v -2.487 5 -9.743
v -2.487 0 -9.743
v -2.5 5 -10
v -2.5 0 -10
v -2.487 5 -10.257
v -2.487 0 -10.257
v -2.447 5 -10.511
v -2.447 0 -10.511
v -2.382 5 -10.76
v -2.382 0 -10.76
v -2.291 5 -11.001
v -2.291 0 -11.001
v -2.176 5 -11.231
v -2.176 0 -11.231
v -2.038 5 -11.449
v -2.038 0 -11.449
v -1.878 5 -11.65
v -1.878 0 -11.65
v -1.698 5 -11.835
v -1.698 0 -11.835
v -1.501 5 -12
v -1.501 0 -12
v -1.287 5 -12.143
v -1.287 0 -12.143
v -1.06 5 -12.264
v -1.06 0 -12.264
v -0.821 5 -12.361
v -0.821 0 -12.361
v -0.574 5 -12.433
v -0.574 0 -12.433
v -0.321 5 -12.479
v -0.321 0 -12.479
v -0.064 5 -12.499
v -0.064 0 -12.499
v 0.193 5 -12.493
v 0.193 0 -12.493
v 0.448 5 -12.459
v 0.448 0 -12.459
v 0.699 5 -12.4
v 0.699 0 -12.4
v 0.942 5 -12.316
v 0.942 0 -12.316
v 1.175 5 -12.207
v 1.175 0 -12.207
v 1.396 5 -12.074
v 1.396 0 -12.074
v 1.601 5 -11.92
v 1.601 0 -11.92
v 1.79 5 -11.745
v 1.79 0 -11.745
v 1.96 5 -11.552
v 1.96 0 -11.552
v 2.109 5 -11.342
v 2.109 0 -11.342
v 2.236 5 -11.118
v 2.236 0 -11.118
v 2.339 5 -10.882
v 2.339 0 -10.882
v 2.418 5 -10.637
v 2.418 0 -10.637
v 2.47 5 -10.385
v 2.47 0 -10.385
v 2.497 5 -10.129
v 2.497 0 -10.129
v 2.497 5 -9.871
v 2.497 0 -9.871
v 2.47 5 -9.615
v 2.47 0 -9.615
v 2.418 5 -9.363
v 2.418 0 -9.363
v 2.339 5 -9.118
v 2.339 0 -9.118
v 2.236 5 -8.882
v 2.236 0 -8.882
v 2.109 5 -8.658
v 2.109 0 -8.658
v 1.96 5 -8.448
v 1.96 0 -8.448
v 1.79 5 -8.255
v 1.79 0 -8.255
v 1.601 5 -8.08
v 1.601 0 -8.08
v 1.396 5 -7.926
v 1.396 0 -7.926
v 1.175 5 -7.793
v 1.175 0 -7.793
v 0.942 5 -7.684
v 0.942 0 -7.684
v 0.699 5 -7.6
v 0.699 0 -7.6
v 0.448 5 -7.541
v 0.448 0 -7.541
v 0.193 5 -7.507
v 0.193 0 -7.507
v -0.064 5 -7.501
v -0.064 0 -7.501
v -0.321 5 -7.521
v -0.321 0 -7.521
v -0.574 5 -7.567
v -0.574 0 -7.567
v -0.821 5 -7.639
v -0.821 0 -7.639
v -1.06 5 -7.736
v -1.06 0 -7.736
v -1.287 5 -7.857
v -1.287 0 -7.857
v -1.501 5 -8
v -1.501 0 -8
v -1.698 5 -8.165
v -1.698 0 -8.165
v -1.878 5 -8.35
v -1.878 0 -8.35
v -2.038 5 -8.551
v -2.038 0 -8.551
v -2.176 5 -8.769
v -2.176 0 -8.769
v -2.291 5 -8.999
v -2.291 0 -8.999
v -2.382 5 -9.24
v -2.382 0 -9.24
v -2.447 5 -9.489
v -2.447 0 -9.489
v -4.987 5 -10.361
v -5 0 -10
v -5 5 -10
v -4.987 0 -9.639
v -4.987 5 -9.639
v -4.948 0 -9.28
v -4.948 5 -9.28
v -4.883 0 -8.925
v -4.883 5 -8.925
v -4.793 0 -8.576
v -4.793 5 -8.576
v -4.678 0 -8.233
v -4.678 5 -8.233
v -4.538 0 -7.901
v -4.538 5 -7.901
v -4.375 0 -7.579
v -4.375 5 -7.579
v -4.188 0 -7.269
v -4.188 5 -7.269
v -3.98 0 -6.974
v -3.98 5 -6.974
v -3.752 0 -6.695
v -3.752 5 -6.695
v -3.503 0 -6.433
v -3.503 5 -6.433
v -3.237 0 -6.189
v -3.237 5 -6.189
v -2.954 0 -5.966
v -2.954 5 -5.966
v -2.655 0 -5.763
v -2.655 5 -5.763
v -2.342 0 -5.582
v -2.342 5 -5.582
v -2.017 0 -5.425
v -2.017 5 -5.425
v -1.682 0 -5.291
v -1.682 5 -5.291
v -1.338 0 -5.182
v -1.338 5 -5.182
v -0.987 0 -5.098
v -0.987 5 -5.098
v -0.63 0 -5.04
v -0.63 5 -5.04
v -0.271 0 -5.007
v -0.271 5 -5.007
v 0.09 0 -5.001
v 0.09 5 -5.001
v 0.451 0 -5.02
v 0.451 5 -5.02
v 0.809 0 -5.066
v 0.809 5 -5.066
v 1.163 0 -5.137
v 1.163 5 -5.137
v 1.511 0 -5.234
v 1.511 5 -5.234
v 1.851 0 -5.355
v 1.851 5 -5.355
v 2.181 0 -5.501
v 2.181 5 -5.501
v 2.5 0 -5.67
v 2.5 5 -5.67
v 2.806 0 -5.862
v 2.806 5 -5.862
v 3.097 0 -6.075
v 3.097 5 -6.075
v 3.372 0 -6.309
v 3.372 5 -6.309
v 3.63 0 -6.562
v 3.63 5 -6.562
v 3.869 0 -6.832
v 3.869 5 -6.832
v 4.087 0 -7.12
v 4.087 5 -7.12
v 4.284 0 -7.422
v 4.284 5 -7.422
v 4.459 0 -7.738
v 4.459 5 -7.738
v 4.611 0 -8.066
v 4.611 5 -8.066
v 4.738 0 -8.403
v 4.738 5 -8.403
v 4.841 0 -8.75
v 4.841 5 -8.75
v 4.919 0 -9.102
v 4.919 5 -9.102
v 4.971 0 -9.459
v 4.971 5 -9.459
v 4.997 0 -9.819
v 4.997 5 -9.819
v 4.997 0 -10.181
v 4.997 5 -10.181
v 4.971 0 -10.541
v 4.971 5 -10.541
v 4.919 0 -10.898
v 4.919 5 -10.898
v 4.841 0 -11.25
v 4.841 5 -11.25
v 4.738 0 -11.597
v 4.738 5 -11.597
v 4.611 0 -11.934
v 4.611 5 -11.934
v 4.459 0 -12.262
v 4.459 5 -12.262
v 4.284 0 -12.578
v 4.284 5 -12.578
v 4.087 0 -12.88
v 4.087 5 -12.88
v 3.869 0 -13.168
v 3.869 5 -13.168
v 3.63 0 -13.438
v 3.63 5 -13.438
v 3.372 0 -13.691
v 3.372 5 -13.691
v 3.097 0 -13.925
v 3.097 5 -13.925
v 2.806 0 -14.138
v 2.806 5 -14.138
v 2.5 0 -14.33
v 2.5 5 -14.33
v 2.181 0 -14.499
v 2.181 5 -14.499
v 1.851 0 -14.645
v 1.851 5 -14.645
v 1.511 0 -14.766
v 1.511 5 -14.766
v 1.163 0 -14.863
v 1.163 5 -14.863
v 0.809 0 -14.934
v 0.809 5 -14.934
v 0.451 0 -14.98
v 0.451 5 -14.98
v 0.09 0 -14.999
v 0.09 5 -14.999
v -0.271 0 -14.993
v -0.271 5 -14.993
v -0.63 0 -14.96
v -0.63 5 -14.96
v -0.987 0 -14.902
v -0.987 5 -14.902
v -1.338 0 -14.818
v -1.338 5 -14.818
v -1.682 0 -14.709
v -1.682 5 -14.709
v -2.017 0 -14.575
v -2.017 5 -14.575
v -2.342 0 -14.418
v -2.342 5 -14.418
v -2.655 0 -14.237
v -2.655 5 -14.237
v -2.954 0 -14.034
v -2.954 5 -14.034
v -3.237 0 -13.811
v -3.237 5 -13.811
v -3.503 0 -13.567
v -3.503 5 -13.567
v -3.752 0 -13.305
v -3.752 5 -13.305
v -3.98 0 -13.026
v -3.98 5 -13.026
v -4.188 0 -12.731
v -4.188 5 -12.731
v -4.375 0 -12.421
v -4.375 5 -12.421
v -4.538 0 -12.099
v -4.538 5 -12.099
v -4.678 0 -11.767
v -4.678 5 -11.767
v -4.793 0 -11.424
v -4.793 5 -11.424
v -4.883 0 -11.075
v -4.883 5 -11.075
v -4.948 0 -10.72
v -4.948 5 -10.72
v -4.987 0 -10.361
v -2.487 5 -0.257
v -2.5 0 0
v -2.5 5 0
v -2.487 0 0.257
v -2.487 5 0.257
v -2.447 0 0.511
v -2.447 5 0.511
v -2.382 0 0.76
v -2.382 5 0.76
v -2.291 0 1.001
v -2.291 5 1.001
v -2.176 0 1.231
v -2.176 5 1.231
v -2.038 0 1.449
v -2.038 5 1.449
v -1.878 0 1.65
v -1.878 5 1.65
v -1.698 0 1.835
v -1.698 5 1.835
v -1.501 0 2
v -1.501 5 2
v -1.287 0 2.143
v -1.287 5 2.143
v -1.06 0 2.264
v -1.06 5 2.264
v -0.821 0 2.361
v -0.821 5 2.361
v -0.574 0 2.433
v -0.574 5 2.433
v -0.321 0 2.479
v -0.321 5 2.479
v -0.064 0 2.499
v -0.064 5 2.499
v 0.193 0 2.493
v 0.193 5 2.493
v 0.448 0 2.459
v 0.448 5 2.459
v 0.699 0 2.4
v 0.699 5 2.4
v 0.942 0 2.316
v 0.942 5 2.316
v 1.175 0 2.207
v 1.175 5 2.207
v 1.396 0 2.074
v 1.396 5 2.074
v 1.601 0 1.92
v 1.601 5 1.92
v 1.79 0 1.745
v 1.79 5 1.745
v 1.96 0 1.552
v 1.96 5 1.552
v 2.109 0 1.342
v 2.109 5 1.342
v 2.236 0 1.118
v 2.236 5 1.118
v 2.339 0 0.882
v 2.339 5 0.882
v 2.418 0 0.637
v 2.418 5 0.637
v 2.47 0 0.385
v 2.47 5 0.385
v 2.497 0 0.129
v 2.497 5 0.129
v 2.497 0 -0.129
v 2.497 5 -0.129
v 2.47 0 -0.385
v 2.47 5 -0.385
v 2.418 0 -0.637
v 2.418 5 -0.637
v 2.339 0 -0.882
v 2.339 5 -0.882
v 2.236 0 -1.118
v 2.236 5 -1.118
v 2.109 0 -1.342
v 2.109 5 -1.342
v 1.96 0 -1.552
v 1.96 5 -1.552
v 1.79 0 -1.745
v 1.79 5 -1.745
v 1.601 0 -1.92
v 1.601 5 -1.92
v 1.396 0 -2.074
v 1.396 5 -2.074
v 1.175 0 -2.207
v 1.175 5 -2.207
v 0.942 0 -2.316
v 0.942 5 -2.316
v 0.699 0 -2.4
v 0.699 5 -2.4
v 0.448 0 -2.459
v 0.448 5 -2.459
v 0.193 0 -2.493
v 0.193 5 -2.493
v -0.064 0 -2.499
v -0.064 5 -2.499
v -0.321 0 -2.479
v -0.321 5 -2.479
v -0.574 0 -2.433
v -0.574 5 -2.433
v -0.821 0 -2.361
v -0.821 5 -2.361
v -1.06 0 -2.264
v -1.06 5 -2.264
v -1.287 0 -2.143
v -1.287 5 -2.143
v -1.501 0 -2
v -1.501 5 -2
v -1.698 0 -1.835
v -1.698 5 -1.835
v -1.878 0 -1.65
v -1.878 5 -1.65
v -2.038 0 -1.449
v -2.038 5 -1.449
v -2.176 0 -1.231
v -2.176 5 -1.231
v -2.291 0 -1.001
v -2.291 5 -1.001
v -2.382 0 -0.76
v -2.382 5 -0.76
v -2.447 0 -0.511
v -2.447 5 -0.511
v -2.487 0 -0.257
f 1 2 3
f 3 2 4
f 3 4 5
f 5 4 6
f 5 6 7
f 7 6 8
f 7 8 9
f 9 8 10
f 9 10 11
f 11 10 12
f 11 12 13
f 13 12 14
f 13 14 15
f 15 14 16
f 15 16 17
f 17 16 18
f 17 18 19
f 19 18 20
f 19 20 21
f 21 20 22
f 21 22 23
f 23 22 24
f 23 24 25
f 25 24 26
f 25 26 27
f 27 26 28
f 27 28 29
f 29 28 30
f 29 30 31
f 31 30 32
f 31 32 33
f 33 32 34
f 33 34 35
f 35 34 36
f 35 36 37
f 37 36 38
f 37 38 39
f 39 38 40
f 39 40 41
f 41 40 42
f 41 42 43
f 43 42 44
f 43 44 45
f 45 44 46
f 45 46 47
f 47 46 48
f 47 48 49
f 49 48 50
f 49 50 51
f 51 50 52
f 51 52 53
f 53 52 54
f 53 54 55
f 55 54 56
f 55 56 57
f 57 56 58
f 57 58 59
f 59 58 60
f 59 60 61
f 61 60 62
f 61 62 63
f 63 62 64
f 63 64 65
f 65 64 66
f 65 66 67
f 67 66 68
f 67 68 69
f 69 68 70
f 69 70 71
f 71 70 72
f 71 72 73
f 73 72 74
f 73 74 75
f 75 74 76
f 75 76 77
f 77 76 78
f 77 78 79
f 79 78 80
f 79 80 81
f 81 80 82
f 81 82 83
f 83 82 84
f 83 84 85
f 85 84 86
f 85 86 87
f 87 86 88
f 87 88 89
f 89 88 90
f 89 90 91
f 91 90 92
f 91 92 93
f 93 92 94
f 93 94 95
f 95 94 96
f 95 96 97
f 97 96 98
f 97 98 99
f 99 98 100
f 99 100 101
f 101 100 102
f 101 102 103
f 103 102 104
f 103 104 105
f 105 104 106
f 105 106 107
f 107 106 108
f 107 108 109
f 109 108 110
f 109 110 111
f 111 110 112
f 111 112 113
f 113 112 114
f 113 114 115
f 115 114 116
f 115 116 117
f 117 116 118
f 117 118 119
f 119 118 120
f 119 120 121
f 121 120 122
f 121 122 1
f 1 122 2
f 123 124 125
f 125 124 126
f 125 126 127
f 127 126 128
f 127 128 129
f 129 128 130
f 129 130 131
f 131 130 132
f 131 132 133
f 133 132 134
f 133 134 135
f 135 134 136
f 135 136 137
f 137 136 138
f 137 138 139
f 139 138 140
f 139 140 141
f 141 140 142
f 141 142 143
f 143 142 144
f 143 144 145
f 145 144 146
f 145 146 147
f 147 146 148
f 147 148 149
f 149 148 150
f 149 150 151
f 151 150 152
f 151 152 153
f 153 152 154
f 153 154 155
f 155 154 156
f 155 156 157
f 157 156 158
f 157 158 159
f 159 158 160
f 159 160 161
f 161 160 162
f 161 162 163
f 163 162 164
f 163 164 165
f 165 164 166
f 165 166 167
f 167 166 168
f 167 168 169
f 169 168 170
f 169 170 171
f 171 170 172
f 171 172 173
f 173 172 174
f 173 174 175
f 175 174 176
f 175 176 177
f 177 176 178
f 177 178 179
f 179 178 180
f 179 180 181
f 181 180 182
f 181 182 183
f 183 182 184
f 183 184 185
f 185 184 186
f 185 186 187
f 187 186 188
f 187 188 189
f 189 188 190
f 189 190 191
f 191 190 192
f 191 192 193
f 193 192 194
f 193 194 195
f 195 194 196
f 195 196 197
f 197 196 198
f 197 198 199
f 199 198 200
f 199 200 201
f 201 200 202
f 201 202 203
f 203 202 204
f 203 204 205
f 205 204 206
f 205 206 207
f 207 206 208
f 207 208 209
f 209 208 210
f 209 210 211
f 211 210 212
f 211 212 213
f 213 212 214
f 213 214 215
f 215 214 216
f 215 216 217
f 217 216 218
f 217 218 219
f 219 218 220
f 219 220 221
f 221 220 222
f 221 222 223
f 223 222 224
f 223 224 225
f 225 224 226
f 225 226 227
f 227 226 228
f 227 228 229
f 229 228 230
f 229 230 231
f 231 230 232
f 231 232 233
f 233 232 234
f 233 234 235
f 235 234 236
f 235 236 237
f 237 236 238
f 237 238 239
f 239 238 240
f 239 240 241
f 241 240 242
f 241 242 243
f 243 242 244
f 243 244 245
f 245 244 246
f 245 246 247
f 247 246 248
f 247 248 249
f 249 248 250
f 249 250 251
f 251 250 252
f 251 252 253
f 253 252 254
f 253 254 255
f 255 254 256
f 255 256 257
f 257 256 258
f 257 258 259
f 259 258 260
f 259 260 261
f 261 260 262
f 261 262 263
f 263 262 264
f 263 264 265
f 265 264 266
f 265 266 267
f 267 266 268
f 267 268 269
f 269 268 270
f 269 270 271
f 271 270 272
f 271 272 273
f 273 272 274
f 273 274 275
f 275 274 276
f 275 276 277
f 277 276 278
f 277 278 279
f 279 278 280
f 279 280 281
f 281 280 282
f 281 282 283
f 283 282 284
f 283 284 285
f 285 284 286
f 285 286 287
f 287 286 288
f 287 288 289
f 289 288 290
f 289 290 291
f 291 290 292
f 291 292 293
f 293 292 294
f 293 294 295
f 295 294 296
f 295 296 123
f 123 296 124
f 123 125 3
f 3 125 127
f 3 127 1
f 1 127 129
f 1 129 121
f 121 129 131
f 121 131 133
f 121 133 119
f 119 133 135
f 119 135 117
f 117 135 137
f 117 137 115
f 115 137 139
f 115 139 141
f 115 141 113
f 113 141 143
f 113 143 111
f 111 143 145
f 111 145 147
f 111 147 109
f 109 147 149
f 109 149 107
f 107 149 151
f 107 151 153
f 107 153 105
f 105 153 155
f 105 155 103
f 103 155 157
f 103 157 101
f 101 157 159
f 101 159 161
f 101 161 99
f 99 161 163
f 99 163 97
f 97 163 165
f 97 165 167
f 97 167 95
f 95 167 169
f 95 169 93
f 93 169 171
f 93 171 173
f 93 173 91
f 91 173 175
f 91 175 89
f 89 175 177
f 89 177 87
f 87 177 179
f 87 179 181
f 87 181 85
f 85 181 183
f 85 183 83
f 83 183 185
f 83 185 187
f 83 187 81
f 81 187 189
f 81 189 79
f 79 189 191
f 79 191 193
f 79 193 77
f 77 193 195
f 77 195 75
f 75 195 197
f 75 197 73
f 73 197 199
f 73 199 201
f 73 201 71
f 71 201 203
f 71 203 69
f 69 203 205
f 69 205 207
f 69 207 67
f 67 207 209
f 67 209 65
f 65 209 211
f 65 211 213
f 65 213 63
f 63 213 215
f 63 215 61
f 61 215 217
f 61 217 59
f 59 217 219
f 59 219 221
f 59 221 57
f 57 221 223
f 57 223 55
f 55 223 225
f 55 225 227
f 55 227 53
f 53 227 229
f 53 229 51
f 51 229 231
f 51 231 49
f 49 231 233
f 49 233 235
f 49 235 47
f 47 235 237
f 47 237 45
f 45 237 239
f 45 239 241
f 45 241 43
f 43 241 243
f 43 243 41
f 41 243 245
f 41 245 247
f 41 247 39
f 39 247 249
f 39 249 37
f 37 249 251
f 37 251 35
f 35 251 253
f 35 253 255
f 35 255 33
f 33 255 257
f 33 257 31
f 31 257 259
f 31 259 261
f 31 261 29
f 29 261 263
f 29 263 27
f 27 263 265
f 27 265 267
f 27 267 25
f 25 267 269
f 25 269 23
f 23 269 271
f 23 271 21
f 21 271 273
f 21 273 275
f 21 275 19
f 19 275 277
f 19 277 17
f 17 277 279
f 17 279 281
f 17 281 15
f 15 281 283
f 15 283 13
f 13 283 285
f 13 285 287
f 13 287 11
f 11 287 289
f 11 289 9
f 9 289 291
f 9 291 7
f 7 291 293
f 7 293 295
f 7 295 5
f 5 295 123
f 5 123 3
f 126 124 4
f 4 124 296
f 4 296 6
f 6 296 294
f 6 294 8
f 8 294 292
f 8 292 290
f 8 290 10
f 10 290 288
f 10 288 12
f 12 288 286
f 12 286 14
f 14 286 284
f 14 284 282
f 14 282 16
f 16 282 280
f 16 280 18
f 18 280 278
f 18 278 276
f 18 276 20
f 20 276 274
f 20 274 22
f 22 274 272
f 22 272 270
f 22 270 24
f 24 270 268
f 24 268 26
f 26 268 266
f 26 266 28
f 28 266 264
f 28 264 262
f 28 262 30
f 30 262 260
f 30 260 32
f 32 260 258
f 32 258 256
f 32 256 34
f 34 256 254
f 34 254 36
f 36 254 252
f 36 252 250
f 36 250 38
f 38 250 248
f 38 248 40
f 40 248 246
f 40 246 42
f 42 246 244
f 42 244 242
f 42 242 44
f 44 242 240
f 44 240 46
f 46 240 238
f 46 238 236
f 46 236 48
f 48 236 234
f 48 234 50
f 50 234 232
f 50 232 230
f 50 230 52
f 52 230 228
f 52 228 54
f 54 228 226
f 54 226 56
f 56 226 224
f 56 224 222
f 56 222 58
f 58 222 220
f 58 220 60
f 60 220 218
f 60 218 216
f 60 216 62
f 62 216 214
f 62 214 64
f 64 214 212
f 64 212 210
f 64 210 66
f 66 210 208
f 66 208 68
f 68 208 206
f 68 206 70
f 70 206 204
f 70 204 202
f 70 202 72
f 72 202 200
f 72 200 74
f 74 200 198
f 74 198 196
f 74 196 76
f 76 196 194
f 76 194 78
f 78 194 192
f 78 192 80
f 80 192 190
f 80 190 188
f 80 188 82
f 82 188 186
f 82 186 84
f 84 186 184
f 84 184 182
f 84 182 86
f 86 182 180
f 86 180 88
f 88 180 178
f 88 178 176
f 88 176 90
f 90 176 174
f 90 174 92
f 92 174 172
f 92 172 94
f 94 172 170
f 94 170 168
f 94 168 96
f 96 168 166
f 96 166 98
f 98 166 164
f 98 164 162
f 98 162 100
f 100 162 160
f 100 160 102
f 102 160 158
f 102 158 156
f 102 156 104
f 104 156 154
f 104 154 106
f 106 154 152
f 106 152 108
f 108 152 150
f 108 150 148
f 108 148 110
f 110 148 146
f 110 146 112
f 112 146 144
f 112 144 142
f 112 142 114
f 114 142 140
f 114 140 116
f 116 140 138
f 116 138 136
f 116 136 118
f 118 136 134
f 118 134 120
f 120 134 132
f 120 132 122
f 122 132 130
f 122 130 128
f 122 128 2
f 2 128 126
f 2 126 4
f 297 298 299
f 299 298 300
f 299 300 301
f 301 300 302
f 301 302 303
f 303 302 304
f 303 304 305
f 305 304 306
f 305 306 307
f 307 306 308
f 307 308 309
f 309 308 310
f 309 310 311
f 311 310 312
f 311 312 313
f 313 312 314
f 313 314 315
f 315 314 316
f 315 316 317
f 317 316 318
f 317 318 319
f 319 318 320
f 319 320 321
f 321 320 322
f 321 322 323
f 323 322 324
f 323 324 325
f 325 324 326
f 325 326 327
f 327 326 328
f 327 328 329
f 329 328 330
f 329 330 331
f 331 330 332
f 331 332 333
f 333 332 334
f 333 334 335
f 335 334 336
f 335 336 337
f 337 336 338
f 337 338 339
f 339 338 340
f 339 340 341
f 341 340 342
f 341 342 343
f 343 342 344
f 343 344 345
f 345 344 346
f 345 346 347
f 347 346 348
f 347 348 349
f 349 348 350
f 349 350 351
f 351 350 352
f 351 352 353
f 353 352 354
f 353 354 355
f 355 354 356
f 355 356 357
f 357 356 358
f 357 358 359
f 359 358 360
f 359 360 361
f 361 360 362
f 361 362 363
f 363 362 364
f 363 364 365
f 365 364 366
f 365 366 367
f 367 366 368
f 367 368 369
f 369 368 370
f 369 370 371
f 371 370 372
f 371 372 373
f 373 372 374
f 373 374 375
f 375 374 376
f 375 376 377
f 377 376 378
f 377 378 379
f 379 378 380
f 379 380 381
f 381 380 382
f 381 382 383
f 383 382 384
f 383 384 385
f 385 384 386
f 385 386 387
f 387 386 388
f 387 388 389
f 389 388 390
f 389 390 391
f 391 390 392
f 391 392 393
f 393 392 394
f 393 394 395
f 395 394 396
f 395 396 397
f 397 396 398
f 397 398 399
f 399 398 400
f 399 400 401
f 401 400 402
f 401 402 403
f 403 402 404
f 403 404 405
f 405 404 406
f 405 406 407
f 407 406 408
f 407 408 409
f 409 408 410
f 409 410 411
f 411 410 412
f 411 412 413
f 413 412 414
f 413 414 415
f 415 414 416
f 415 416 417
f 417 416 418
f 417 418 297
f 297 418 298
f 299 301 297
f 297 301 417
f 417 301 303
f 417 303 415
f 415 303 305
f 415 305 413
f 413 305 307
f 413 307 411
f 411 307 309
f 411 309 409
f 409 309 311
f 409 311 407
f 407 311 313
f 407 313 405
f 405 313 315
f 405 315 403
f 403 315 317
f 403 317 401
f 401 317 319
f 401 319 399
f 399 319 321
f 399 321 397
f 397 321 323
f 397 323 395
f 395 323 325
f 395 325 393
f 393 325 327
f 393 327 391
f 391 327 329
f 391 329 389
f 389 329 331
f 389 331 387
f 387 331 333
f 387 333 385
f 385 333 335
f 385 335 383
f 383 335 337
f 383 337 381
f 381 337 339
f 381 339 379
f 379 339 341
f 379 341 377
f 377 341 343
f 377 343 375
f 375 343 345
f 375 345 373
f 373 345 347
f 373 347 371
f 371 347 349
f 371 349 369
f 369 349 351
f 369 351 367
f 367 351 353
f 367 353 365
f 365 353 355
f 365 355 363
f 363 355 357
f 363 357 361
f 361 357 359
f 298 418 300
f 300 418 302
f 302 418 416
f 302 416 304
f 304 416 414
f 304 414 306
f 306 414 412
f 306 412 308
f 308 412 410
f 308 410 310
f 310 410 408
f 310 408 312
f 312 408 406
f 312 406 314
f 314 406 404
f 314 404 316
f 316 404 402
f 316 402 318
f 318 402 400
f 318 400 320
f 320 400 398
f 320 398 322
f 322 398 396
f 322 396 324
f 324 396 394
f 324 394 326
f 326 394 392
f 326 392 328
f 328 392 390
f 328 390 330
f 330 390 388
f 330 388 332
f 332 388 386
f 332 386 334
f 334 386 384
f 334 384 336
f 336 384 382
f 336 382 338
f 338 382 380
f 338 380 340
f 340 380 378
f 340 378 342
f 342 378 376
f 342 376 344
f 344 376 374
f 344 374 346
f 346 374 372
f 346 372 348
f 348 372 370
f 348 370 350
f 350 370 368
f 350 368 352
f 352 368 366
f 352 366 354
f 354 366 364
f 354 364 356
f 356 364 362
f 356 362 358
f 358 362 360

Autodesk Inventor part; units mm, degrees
ref_plane "YZ Plane" through (0, 0, 0) normal (1, 0, 0) x (0, 1, 0)
ref_plane "XZ Plane" through (0, 0, 0) normal (0, 1, 0) x (-1, 0, 0)
ref_plane "XY Plane" through (0, 0, 0) normal (0, 0, 1) x (1, 0, 0)
sketch "Sketch1" plane through (0, 0, 0) normal (0, 1, 0) x (-1, 0, 0)
  circle A0 centre (0, 0) radius 2.5
  circle A1 centre (0, -10) radius 5
  circle A2 centre (0, -10) radius 2.5
  dimension "d0" = 5
  dimension "d1" = 10
  dimension "d2" = 5
  dimension "d3" = 10
extrude "Extrusion1" add sketch "Sketch1" along normal blind 5
